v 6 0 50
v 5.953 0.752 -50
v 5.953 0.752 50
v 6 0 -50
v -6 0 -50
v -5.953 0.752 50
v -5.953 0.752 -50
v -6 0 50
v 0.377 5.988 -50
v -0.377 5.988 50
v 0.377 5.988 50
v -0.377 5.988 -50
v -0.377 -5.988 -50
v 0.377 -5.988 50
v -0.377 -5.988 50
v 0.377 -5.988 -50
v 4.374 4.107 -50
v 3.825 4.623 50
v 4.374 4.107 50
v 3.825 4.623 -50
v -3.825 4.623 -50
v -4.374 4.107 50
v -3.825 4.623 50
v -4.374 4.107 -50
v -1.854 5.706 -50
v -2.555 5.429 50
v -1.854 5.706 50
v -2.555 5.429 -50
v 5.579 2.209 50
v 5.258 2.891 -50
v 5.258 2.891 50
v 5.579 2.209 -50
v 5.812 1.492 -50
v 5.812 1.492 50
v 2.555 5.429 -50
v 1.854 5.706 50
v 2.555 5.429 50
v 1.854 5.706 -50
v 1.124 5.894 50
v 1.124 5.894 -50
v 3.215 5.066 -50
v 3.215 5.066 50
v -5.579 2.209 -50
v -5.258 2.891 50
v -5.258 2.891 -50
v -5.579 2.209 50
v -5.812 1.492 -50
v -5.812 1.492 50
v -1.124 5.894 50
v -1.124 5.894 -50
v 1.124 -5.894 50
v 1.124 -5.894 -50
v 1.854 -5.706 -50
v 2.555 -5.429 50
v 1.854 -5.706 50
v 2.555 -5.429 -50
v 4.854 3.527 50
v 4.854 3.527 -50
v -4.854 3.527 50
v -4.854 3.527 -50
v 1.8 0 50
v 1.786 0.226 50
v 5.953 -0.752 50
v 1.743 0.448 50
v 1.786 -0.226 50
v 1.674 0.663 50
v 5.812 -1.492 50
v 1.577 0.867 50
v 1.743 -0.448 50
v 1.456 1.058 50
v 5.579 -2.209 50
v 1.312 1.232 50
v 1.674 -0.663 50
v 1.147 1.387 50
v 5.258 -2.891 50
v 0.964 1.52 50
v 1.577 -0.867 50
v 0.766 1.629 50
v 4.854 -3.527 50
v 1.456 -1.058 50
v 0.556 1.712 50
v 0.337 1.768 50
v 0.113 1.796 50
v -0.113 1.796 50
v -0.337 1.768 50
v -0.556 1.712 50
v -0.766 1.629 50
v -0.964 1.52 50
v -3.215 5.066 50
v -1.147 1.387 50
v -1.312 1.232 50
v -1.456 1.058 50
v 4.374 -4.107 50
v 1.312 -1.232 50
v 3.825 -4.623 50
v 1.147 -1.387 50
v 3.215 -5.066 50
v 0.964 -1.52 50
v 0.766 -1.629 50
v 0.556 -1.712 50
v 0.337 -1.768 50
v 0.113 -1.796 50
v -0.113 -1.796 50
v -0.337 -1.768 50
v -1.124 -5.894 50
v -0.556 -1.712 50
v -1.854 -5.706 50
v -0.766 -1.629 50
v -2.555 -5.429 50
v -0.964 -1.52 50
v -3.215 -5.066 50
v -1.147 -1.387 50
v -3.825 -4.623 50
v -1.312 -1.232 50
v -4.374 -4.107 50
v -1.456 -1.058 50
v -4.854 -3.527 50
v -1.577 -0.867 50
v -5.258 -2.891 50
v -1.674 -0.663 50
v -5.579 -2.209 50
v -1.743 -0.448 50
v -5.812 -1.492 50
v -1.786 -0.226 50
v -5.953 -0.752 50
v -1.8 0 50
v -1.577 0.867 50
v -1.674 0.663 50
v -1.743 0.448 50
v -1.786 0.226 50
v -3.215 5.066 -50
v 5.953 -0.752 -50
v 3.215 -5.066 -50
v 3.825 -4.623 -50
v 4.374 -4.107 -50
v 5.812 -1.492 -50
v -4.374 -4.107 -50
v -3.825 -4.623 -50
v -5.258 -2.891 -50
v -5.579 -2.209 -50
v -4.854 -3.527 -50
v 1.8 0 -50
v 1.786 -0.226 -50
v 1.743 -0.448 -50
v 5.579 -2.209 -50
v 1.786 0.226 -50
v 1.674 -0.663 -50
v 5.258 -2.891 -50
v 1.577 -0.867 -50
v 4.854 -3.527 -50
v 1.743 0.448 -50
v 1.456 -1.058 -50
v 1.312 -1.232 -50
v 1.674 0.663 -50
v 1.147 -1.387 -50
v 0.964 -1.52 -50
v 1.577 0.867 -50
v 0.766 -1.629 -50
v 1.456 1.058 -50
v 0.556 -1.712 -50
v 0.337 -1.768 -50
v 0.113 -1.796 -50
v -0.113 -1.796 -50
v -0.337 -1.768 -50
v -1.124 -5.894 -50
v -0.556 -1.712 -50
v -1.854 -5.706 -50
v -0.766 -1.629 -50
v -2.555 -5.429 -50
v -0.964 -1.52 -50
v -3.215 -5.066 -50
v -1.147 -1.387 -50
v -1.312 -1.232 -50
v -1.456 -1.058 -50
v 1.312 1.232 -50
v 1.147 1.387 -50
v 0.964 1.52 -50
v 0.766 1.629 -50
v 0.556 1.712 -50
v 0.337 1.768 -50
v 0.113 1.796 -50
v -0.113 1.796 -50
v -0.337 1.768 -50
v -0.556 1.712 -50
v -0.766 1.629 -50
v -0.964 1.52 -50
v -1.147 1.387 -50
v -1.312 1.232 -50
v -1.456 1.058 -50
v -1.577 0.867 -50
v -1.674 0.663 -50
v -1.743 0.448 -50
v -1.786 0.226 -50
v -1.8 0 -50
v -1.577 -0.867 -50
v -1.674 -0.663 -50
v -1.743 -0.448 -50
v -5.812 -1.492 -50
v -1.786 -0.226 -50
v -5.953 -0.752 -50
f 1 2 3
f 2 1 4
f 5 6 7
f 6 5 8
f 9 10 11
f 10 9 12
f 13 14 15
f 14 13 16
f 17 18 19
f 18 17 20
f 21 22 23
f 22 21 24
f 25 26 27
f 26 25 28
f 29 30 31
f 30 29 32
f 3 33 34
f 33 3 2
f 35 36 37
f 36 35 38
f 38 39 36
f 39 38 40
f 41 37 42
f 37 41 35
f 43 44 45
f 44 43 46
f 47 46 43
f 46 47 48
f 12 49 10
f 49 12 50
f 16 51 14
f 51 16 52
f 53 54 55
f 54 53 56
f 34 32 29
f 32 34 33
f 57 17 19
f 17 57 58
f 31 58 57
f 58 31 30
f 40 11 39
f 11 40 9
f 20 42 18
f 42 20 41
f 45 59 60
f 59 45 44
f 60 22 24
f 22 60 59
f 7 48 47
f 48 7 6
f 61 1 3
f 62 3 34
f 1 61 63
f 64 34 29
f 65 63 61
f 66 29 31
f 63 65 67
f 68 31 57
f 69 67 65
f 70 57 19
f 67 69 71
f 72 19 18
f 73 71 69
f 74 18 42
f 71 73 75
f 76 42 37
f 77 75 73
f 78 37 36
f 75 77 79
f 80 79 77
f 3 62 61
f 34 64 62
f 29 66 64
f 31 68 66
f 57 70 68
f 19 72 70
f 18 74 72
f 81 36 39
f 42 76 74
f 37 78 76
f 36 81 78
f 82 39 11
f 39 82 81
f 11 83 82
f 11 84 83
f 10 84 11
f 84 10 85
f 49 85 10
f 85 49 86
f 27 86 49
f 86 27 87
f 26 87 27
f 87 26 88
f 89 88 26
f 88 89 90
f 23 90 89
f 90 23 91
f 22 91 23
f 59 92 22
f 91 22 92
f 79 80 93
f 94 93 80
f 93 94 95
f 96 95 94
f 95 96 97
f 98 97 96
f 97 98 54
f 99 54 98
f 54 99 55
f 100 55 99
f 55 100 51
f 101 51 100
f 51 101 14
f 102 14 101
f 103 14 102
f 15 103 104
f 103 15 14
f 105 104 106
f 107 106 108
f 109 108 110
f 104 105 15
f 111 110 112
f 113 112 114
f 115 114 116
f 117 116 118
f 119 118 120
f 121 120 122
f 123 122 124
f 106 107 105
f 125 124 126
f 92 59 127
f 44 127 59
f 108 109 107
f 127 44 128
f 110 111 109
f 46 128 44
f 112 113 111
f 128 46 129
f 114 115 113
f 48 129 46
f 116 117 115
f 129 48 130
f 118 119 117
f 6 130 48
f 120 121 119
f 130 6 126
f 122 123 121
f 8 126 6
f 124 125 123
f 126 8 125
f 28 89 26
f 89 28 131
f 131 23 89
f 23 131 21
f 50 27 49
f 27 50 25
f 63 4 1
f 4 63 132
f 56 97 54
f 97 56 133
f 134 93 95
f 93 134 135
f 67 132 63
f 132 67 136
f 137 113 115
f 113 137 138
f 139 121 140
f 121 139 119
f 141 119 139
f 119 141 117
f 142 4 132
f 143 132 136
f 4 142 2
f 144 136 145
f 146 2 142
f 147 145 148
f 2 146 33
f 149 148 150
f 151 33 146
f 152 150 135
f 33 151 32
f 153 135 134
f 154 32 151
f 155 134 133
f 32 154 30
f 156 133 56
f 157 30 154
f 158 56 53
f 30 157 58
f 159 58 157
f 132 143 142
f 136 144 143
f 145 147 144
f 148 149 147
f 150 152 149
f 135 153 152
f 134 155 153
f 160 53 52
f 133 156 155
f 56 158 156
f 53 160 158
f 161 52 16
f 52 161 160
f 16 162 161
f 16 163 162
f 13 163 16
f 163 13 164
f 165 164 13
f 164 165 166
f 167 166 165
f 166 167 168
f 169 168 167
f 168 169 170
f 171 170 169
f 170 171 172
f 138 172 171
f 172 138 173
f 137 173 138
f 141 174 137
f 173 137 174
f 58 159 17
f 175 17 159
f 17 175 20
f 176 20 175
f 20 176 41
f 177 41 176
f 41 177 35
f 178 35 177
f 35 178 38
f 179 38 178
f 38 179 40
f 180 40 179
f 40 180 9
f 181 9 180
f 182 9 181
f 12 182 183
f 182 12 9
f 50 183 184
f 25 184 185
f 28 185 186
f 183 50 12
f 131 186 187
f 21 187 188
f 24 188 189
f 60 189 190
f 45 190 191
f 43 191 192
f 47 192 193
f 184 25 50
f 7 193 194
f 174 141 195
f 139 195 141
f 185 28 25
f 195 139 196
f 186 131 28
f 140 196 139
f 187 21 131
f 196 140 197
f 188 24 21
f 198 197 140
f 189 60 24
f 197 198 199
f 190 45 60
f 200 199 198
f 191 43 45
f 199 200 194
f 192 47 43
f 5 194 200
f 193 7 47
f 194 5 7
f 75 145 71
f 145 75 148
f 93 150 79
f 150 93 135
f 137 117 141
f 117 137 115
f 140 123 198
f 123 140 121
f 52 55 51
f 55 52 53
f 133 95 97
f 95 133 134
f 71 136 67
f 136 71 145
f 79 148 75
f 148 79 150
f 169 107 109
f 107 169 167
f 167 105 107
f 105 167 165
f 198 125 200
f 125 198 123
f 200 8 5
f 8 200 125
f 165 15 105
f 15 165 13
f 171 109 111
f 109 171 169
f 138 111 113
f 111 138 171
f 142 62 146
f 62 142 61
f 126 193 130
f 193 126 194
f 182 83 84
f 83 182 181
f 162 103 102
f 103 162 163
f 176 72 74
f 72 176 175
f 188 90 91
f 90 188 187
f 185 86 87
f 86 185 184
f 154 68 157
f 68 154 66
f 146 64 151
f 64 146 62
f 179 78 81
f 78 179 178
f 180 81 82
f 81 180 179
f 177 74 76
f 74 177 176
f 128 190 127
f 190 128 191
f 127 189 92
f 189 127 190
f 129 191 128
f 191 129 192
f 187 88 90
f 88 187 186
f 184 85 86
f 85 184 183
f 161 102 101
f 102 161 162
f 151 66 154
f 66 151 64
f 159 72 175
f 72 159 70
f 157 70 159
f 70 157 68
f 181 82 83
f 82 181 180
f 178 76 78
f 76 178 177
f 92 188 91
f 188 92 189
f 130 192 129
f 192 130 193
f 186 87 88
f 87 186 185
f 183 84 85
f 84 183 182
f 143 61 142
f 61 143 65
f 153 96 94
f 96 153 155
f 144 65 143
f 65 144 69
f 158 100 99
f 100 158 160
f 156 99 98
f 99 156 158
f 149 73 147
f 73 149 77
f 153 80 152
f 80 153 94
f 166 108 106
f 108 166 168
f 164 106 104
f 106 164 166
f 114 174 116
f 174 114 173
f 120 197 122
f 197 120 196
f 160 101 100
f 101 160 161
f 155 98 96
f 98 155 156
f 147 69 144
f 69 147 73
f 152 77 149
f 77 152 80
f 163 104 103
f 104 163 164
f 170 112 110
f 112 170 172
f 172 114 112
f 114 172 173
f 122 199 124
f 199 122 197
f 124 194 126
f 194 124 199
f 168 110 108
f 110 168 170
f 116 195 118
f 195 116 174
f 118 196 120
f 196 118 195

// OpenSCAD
$fn = 50;


difference() {
	union() {
		translate(v = [0, 0, -50.0000000000]) {
			cylinder(h = 100, r = 6.0000000000);
		}
	}
	union() {
		translate(v = [0, 0, -100.0000000000]) {
			cylinder(h = 200, r = 1.8000000000);
		}
	}
}
